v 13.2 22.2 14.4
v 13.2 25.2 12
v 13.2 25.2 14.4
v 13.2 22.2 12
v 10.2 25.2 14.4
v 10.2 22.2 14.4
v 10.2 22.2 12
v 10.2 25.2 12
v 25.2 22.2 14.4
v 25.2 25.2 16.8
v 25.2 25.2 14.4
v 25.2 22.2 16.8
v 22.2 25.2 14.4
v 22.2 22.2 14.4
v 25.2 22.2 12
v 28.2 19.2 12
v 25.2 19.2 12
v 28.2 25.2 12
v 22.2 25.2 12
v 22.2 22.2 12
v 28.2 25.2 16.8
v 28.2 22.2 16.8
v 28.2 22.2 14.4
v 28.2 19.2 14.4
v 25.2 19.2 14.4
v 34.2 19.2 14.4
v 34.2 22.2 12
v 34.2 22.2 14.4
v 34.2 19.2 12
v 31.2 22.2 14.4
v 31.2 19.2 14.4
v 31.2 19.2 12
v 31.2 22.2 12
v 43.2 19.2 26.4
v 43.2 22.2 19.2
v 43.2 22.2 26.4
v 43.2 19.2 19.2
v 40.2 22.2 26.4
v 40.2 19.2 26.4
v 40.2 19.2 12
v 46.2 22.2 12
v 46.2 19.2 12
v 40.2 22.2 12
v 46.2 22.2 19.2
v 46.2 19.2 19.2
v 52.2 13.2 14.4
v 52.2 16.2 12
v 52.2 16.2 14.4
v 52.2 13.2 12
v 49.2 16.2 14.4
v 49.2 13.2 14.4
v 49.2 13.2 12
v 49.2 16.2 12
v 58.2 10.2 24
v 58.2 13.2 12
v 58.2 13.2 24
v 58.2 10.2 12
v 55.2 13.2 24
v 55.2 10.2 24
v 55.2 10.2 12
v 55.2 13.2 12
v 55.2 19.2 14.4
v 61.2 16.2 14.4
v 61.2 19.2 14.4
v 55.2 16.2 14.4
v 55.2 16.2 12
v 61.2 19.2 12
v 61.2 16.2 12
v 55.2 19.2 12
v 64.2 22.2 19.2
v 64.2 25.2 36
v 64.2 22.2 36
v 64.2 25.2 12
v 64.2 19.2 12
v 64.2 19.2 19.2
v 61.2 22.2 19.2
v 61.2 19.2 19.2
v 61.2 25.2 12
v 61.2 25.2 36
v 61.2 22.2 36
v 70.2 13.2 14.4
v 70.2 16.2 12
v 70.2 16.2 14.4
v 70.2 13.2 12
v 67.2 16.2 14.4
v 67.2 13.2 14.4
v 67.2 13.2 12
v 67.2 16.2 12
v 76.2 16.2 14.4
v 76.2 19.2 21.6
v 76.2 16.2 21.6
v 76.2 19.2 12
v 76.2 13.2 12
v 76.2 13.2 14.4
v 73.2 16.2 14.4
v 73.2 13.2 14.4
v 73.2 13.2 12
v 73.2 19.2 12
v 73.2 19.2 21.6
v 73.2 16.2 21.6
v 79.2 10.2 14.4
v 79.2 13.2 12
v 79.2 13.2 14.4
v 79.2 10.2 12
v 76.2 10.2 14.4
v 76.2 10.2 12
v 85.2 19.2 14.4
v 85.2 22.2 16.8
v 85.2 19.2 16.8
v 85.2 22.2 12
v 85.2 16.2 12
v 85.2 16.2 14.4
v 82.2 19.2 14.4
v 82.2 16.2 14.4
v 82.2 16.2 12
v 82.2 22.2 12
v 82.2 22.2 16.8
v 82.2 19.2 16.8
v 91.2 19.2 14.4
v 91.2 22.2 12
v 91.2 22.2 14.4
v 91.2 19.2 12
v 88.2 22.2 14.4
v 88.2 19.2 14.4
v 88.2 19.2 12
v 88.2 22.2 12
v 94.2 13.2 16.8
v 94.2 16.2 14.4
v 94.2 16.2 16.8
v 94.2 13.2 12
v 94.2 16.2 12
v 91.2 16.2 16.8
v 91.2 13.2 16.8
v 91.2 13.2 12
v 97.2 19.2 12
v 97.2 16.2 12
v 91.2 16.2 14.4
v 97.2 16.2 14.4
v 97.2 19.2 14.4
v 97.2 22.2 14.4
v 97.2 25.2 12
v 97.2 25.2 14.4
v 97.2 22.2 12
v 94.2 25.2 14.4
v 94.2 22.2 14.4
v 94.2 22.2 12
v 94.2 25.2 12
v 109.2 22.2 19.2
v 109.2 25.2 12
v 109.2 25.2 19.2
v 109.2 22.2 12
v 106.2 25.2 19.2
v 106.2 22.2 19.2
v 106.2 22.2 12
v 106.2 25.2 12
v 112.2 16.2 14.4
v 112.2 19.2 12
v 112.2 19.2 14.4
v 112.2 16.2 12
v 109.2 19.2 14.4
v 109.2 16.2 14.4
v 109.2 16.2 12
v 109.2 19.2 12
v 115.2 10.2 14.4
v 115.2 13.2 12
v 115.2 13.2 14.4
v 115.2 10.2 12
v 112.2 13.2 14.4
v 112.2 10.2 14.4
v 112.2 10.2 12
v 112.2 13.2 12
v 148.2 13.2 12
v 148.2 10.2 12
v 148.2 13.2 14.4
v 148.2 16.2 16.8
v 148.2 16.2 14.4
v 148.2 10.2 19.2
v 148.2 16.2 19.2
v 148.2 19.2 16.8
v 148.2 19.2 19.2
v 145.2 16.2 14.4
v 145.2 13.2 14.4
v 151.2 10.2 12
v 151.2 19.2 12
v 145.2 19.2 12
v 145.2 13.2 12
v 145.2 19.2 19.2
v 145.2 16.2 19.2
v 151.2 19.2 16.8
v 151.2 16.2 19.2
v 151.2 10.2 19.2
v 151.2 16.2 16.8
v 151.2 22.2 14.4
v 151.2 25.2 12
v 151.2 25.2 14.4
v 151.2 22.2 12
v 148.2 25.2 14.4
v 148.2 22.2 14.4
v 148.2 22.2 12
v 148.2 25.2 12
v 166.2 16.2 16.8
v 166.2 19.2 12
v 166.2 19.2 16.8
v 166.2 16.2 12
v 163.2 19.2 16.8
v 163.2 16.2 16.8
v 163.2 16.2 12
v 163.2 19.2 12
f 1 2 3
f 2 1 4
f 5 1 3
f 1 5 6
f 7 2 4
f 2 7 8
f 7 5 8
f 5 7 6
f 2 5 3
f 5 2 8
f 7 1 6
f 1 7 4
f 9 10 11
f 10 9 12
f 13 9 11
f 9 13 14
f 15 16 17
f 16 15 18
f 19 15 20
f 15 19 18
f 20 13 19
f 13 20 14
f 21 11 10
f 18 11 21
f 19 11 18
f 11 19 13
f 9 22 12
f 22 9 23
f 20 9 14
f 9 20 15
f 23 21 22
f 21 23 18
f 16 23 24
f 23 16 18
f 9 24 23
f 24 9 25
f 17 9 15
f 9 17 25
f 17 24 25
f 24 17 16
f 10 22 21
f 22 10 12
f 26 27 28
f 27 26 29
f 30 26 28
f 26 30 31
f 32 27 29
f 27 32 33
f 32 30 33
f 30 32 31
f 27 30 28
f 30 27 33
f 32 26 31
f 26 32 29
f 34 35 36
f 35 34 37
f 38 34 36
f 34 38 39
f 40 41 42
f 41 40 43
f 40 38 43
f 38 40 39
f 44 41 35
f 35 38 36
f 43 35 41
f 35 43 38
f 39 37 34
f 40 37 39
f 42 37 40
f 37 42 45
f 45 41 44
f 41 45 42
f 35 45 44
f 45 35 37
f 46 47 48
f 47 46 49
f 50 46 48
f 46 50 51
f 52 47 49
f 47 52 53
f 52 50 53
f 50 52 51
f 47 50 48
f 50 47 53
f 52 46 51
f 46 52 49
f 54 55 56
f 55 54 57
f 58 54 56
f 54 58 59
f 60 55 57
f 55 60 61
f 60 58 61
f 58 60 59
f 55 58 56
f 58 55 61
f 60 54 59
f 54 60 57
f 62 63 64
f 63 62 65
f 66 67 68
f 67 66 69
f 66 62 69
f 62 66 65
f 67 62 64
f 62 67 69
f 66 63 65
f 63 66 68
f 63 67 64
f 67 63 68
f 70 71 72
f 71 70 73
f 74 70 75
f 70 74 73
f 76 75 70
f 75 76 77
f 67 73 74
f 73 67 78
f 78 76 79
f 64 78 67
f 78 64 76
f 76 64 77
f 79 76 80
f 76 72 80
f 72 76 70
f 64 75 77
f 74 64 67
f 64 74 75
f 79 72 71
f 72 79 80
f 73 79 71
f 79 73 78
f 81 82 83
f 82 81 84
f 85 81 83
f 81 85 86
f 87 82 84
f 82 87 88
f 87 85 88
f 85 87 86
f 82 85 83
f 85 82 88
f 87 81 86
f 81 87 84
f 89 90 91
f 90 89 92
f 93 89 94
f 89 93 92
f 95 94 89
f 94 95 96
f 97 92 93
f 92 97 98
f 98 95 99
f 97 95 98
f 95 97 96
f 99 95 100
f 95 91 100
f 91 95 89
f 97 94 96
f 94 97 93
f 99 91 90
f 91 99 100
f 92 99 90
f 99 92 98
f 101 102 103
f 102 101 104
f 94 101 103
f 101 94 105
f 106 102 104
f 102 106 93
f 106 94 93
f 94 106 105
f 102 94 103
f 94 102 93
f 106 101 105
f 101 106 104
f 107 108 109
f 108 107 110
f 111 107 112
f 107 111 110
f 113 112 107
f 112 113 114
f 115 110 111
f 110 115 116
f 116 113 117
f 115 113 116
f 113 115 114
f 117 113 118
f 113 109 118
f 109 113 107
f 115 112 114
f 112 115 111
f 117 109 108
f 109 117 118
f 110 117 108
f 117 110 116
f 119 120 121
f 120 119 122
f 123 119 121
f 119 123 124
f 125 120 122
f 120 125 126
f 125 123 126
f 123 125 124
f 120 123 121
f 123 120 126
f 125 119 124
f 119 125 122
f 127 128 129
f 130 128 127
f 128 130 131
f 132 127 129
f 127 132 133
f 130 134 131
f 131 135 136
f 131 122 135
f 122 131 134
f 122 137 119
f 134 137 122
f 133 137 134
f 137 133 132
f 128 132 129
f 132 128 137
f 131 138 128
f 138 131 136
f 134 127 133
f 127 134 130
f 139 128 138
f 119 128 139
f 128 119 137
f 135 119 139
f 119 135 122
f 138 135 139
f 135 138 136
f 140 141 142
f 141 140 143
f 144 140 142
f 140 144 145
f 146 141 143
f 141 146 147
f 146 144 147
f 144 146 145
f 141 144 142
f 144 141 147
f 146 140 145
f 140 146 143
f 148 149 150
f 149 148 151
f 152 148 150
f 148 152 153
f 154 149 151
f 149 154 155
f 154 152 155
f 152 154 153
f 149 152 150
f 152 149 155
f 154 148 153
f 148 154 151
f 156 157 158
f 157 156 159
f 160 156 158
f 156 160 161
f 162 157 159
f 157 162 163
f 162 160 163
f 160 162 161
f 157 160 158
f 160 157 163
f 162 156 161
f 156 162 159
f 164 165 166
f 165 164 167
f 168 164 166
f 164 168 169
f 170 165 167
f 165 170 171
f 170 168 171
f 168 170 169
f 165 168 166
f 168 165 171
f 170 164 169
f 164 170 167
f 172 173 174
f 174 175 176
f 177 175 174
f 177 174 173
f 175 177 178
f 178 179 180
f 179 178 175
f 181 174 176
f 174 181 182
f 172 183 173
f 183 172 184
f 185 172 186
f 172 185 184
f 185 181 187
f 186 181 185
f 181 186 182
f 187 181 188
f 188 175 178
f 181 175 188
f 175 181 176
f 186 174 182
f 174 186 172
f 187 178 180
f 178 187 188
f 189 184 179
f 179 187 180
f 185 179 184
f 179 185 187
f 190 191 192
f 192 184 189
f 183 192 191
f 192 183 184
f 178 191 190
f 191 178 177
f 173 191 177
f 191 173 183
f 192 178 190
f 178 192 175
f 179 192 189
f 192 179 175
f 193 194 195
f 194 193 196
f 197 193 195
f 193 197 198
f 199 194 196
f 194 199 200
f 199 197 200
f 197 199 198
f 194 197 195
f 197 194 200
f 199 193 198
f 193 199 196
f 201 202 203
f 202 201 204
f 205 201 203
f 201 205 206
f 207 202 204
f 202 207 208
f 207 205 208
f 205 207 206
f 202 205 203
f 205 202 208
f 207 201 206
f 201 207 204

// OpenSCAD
union() {
	translate(v = [10.200000000000001, 22.200000000000003, 12.0]) {
		cube(size = [3.0, 3.0, 2.4]);
	}
	translate(v = [22.200000000000003, 22.200000000000003, 12.0]) {
		cube(size = [3.0, 3.0, 2.4]);
	}
	translate(v = [25.200000000000003, 19.200000000000003, 12.0]) {
		cube(size = [3.0, 3.0, 2.4]);
	}
	translate(v = [25.200000000000003, 22.200000000000003, 12.0]) {
		cube(size = [3.0, 3.0, 4.8]);
	}
	translate(v = [31.200000000000003, 19.200000000000003, 12.0]) {
		cube(size = [3.0, 3.0, 2.4]);
	}
	translate(v = [40.2, 19.200000000000003, 12.0]) {
		cube(size = [3.0, 3.0, 14.4]);
	}
	translate(v = [43.2, 19.200000000000003, 12.0]) {
		cube(size = [3.0, 3.0, 7.2]);
	}
	translate(v = [49.2, 13.200000000000001, 12.0]) {
		cube(size = [3.0, 3.0, 2.4]);
	}
	translate(v = [55.2, 10.200000000000001, 12.0]) {
		cube(size = [3.0, 3.0, 12.0]);
	}
	translate(v = [55.2, 16.200000000000003, 12.0]) {
		cube(size = [3.0, 3.0, 2.4]);
	}
	translate(v = [58.2, 16.200000000000003, 12.0]) {
		cube(size = [3.0, 3.0, 2.4]);
	}
	translate(v = [61.2, 19.200000000000003, 12.0]) {
		cube(size = [3.0, 3.0, 7.2]);
	}
	translate(v = [61.2, 22.200000000000003, 12.0]) {
		cube(size = [3.0, 3.0, 24.0]);
	}
	translate(v = [67.2, 13.200000000000001, 12.0]) {
		cube(size = [3.0, 3.0, 2.4]);
	}
	translate(v = [73.2, 13.200000000000001, 12.0]) {
		cube(size = [3.0, 3.0, 2.4]);
	}
	translate(v = [73.2, 16.200000000000003, 12.0]) {
		cube(size = [3.0, 3.0, 9.6]);
	}
	translate(v = [76.2, 10.200000000000001, 12.0]) {
		cube(size = [3.0, 3.0, 2.4]);
	}
	translate(v = [82.2, 16.200000000000003, 12.0]) {
		cube(size = [3.0, 3.0, 2.4]);
	}
	translate(v = [82.2, 19.200000000000003, 12.0]) {
		cube(size = [3.0, 3.0, 4.8]);
	}
	translate(v = [88.2, 19.200000000000003, 12.0]) {
		cube(size = [3.0, 3.0, 2.4]);
	}
	translate(v = [91.2, 13.200000000000001, 12.0]) {
		cube(size = [3.0, 3.0, 4.8]);
	}
	translate(v = [91.2, 16.200000000000003, 12.0]) {
		cube(size = [3.0, 3.0, 2.4]);
	}
	translate(v = [94.2, 16.200000000000003, 12.0]) {
		cube(size = [3.0, 3.0, 2.4]);
	}
	translate(v = [94.2, 22.200000000000003, 12.0]) {
		cube(size = [3.0, 3.0, 2.4]);
	}
	translate(v = [106.2, 22.200000000000003, 12.0]) {
		cube(size = [3.0, 3.0, 7.2]);
	}
	translate(v = [109.2, 16.200000000000003, 12.0]) {
		cube(size = [3.0, 3.0, 2.4]);
	}
	translate(v = [112.2, 10.200000000000001, 12.0]) {
		cube(size = [3.0, 3.0, 2.4]);
	}
	translate(v = [145.2, 13.200000000000001, 12.0]) {
		cube(size = [3.0, 3.0, 2.4]);
	}
	translate(v = [145.2, 16.200000000000003, 12.0]) {
		cube(size = [3.0, 3.0, 7.2]);
	}
	translate(v = [148.2, 10.200000000000001, 12.0]) {
		cube(size = [3.0, 3.0, 7.2]);
	}
	translate(v = [148.2, 13.200000000000001, 12.0]) {
		cube(size = [3.0, 3.0, 7.2]);
	}
	translate(v = [148.2, 16.200000000000003, 12.0]) {
		cube(size = [3.0, 3.0, 4.8]);
	}
	translate(v = [148.2, 22.200000000000003, 12.0]) {
		cube(size = [3.0, 3.0, 2.4]);
	}
	translate(v = [163.2, 16.200000000000003, 12.0]) {
		cube(size = [3.0, 3.0, 4.8]);
	}
}
